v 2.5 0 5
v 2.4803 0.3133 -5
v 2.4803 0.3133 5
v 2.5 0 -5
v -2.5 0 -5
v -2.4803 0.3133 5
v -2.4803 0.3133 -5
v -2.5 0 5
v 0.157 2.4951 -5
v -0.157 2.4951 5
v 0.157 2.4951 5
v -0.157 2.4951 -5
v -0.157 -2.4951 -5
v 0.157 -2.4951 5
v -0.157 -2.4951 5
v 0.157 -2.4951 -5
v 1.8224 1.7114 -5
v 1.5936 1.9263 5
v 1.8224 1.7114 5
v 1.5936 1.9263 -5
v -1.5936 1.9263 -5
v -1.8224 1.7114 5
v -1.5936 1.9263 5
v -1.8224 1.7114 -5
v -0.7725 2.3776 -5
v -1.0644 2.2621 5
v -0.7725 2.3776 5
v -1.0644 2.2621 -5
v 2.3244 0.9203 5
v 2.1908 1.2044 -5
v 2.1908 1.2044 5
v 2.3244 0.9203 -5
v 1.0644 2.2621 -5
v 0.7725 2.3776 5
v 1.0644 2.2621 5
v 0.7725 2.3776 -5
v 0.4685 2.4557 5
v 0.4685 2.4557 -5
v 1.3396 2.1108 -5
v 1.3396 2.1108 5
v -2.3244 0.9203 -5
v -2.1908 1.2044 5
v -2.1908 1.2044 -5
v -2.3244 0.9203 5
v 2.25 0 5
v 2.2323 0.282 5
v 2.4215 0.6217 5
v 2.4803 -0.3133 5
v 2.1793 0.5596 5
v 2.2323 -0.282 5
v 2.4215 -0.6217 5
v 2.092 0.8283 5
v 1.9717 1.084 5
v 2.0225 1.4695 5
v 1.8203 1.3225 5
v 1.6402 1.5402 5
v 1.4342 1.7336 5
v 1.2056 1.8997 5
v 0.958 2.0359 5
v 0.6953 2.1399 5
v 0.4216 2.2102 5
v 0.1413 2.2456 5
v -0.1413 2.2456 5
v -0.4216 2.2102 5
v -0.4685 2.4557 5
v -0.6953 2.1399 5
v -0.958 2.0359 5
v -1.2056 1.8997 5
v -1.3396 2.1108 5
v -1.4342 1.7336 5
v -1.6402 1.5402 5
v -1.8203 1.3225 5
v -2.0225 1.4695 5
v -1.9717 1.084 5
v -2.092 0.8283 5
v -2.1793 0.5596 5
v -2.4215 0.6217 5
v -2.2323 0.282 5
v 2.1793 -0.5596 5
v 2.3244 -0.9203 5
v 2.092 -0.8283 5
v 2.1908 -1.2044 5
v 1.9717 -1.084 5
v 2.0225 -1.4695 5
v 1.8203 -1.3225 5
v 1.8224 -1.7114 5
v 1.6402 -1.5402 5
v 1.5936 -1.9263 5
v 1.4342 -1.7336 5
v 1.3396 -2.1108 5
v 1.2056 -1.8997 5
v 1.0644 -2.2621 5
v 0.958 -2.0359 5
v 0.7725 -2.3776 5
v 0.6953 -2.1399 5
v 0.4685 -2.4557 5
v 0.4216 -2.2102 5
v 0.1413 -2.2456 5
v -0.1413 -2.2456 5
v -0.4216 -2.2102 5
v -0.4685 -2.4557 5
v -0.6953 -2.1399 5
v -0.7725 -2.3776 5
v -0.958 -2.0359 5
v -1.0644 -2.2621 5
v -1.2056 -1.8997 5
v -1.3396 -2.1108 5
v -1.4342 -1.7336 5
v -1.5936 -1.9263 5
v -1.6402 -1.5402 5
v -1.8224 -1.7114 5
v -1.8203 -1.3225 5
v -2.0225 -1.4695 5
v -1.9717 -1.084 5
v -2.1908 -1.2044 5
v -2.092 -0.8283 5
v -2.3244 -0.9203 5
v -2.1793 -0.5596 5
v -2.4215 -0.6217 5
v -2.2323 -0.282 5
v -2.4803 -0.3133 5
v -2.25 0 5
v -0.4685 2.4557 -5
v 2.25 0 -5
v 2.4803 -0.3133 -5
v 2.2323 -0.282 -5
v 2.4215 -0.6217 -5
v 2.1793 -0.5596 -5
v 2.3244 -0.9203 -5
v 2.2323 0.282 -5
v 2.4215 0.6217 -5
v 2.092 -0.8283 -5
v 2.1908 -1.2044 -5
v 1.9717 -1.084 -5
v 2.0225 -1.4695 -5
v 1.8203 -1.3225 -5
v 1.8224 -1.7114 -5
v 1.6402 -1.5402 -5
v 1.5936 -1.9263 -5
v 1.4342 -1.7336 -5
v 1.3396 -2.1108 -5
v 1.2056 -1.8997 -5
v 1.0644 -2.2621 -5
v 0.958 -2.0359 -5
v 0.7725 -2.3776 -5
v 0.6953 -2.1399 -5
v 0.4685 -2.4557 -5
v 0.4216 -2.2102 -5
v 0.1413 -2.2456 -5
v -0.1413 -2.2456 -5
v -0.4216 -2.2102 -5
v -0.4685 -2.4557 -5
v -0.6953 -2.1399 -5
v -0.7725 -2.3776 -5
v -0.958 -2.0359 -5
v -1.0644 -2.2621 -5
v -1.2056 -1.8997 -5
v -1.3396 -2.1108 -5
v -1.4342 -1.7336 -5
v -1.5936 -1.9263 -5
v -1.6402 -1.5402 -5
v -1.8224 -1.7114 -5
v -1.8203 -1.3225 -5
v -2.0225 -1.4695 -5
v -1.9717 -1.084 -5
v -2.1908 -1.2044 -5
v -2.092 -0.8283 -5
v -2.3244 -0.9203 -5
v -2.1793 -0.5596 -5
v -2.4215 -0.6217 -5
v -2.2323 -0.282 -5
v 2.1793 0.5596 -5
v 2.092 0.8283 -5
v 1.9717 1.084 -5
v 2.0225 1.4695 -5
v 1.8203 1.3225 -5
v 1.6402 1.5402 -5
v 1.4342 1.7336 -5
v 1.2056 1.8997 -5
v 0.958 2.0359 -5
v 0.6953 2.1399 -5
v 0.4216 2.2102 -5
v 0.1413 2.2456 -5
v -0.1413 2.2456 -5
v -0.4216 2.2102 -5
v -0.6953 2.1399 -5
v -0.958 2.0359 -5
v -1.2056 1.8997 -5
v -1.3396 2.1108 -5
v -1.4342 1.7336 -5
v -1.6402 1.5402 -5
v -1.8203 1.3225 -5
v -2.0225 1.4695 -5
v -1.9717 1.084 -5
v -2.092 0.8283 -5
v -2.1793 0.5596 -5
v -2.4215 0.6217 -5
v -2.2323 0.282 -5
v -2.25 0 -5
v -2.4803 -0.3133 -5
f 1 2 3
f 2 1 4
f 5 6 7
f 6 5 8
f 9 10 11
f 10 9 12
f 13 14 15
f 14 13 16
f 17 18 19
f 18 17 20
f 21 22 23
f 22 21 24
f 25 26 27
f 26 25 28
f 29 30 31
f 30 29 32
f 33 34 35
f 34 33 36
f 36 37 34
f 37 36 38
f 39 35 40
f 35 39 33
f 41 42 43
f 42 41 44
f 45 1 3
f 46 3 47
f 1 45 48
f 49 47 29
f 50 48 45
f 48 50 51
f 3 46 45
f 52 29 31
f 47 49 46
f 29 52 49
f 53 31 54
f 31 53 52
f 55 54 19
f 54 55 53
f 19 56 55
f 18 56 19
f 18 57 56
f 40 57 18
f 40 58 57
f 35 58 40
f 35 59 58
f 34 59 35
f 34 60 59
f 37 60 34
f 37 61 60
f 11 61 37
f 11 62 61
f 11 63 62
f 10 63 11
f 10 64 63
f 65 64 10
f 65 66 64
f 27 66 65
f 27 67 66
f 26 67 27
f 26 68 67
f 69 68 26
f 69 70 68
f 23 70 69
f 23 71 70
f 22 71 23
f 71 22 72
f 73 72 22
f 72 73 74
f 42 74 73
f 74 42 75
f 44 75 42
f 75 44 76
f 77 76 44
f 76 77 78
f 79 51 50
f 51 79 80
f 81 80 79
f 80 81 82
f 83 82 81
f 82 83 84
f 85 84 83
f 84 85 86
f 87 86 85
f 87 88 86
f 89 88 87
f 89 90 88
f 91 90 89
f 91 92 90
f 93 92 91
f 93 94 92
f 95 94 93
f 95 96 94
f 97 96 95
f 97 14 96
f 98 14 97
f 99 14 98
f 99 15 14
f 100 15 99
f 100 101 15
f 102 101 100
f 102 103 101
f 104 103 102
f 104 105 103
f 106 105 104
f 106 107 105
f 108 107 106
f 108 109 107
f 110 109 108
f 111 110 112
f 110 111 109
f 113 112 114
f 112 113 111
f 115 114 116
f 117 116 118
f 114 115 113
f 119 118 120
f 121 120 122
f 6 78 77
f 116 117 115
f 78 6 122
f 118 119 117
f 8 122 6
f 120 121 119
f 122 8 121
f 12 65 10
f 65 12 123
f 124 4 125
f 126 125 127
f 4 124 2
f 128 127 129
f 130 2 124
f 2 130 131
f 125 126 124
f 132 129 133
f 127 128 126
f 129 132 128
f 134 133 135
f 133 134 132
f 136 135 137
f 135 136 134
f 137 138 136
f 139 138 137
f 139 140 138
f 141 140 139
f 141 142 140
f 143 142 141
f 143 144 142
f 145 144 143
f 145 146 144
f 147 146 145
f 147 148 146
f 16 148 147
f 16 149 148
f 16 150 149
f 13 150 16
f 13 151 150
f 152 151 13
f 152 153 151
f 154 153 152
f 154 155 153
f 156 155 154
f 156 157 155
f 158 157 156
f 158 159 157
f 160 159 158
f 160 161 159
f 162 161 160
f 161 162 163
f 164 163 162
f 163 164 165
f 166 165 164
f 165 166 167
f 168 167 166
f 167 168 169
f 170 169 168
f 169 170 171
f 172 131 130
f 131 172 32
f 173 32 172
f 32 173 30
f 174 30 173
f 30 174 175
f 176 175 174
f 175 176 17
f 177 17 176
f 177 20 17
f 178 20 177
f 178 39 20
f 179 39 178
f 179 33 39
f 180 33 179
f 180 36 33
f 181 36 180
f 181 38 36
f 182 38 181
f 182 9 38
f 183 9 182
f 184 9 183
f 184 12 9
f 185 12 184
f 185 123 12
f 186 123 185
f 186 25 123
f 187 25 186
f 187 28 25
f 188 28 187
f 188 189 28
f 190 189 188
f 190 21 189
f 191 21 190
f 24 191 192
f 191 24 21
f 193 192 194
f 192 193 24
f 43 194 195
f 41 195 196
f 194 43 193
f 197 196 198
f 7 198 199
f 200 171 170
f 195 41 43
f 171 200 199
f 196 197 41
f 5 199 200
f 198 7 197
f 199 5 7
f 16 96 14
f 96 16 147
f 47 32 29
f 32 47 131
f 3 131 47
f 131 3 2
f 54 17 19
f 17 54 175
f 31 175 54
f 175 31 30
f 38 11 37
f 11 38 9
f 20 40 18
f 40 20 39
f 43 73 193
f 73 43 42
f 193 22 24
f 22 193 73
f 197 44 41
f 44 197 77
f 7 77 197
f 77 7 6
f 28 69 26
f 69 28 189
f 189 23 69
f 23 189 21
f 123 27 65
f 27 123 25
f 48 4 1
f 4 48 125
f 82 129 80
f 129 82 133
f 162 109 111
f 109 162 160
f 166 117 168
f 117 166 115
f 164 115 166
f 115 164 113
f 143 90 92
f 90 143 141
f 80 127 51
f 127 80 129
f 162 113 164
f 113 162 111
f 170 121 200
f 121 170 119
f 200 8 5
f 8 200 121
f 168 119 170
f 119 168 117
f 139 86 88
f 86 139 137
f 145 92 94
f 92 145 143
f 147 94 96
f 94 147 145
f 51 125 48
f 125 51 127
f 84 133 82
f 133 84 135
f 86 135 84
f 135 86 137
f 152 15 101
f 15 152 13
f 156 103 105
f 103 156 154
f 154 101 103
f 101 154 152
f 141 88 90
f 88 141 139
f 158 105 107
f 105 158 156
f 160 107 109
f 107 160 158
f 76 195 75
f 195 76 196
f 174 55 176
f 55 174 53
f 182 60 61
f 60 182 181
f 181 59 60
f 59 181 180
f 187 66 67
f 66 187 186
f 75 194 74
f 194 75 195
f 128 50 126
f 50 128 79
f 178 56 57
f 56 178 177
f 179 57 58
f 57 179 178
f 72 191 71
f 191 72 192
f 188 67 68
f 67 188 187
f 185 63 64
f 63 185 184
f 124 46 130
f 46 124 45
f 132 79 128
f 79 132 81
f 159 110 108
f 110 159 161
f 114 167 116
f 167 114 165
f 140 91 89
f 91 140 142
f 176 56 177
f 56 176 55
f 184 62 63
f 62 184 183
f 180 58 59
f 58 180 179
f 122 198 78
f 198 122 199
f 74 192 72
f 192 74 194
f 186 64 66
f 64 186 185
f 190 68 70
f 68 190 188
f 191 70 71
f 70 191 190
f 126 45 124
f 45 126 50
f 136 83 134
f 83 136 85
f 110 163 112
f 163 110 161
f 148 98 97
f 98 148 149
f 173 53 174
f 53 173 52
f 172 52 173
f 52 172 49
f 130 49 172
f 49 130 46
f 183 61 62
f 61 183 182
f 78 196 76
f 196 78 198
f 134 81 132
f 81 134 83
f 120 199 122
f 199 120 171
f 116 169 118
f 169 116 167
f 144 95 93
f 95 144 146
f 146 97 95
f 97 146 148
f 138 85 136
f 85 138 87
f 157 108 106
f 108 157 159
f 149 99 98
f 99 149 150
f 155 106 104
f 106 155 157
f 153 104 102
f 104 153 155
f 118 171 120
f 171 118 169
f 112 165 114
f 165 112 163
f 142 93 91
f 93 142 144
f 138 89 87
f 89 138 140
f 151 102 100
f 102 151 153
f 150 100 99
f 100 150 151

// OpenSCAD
$fn = 50;


difference() {
	union() {
		translate(v = [0, 0, -5.0000000000]) {
			cylinder(h = 10, r = 2.5000000000);
		}
	}
	union() {
		translate(v = [0, 0, -100.0000000000]) {
			cylinder(h = 200, r = 2.2500000000);
		}
	}
}
